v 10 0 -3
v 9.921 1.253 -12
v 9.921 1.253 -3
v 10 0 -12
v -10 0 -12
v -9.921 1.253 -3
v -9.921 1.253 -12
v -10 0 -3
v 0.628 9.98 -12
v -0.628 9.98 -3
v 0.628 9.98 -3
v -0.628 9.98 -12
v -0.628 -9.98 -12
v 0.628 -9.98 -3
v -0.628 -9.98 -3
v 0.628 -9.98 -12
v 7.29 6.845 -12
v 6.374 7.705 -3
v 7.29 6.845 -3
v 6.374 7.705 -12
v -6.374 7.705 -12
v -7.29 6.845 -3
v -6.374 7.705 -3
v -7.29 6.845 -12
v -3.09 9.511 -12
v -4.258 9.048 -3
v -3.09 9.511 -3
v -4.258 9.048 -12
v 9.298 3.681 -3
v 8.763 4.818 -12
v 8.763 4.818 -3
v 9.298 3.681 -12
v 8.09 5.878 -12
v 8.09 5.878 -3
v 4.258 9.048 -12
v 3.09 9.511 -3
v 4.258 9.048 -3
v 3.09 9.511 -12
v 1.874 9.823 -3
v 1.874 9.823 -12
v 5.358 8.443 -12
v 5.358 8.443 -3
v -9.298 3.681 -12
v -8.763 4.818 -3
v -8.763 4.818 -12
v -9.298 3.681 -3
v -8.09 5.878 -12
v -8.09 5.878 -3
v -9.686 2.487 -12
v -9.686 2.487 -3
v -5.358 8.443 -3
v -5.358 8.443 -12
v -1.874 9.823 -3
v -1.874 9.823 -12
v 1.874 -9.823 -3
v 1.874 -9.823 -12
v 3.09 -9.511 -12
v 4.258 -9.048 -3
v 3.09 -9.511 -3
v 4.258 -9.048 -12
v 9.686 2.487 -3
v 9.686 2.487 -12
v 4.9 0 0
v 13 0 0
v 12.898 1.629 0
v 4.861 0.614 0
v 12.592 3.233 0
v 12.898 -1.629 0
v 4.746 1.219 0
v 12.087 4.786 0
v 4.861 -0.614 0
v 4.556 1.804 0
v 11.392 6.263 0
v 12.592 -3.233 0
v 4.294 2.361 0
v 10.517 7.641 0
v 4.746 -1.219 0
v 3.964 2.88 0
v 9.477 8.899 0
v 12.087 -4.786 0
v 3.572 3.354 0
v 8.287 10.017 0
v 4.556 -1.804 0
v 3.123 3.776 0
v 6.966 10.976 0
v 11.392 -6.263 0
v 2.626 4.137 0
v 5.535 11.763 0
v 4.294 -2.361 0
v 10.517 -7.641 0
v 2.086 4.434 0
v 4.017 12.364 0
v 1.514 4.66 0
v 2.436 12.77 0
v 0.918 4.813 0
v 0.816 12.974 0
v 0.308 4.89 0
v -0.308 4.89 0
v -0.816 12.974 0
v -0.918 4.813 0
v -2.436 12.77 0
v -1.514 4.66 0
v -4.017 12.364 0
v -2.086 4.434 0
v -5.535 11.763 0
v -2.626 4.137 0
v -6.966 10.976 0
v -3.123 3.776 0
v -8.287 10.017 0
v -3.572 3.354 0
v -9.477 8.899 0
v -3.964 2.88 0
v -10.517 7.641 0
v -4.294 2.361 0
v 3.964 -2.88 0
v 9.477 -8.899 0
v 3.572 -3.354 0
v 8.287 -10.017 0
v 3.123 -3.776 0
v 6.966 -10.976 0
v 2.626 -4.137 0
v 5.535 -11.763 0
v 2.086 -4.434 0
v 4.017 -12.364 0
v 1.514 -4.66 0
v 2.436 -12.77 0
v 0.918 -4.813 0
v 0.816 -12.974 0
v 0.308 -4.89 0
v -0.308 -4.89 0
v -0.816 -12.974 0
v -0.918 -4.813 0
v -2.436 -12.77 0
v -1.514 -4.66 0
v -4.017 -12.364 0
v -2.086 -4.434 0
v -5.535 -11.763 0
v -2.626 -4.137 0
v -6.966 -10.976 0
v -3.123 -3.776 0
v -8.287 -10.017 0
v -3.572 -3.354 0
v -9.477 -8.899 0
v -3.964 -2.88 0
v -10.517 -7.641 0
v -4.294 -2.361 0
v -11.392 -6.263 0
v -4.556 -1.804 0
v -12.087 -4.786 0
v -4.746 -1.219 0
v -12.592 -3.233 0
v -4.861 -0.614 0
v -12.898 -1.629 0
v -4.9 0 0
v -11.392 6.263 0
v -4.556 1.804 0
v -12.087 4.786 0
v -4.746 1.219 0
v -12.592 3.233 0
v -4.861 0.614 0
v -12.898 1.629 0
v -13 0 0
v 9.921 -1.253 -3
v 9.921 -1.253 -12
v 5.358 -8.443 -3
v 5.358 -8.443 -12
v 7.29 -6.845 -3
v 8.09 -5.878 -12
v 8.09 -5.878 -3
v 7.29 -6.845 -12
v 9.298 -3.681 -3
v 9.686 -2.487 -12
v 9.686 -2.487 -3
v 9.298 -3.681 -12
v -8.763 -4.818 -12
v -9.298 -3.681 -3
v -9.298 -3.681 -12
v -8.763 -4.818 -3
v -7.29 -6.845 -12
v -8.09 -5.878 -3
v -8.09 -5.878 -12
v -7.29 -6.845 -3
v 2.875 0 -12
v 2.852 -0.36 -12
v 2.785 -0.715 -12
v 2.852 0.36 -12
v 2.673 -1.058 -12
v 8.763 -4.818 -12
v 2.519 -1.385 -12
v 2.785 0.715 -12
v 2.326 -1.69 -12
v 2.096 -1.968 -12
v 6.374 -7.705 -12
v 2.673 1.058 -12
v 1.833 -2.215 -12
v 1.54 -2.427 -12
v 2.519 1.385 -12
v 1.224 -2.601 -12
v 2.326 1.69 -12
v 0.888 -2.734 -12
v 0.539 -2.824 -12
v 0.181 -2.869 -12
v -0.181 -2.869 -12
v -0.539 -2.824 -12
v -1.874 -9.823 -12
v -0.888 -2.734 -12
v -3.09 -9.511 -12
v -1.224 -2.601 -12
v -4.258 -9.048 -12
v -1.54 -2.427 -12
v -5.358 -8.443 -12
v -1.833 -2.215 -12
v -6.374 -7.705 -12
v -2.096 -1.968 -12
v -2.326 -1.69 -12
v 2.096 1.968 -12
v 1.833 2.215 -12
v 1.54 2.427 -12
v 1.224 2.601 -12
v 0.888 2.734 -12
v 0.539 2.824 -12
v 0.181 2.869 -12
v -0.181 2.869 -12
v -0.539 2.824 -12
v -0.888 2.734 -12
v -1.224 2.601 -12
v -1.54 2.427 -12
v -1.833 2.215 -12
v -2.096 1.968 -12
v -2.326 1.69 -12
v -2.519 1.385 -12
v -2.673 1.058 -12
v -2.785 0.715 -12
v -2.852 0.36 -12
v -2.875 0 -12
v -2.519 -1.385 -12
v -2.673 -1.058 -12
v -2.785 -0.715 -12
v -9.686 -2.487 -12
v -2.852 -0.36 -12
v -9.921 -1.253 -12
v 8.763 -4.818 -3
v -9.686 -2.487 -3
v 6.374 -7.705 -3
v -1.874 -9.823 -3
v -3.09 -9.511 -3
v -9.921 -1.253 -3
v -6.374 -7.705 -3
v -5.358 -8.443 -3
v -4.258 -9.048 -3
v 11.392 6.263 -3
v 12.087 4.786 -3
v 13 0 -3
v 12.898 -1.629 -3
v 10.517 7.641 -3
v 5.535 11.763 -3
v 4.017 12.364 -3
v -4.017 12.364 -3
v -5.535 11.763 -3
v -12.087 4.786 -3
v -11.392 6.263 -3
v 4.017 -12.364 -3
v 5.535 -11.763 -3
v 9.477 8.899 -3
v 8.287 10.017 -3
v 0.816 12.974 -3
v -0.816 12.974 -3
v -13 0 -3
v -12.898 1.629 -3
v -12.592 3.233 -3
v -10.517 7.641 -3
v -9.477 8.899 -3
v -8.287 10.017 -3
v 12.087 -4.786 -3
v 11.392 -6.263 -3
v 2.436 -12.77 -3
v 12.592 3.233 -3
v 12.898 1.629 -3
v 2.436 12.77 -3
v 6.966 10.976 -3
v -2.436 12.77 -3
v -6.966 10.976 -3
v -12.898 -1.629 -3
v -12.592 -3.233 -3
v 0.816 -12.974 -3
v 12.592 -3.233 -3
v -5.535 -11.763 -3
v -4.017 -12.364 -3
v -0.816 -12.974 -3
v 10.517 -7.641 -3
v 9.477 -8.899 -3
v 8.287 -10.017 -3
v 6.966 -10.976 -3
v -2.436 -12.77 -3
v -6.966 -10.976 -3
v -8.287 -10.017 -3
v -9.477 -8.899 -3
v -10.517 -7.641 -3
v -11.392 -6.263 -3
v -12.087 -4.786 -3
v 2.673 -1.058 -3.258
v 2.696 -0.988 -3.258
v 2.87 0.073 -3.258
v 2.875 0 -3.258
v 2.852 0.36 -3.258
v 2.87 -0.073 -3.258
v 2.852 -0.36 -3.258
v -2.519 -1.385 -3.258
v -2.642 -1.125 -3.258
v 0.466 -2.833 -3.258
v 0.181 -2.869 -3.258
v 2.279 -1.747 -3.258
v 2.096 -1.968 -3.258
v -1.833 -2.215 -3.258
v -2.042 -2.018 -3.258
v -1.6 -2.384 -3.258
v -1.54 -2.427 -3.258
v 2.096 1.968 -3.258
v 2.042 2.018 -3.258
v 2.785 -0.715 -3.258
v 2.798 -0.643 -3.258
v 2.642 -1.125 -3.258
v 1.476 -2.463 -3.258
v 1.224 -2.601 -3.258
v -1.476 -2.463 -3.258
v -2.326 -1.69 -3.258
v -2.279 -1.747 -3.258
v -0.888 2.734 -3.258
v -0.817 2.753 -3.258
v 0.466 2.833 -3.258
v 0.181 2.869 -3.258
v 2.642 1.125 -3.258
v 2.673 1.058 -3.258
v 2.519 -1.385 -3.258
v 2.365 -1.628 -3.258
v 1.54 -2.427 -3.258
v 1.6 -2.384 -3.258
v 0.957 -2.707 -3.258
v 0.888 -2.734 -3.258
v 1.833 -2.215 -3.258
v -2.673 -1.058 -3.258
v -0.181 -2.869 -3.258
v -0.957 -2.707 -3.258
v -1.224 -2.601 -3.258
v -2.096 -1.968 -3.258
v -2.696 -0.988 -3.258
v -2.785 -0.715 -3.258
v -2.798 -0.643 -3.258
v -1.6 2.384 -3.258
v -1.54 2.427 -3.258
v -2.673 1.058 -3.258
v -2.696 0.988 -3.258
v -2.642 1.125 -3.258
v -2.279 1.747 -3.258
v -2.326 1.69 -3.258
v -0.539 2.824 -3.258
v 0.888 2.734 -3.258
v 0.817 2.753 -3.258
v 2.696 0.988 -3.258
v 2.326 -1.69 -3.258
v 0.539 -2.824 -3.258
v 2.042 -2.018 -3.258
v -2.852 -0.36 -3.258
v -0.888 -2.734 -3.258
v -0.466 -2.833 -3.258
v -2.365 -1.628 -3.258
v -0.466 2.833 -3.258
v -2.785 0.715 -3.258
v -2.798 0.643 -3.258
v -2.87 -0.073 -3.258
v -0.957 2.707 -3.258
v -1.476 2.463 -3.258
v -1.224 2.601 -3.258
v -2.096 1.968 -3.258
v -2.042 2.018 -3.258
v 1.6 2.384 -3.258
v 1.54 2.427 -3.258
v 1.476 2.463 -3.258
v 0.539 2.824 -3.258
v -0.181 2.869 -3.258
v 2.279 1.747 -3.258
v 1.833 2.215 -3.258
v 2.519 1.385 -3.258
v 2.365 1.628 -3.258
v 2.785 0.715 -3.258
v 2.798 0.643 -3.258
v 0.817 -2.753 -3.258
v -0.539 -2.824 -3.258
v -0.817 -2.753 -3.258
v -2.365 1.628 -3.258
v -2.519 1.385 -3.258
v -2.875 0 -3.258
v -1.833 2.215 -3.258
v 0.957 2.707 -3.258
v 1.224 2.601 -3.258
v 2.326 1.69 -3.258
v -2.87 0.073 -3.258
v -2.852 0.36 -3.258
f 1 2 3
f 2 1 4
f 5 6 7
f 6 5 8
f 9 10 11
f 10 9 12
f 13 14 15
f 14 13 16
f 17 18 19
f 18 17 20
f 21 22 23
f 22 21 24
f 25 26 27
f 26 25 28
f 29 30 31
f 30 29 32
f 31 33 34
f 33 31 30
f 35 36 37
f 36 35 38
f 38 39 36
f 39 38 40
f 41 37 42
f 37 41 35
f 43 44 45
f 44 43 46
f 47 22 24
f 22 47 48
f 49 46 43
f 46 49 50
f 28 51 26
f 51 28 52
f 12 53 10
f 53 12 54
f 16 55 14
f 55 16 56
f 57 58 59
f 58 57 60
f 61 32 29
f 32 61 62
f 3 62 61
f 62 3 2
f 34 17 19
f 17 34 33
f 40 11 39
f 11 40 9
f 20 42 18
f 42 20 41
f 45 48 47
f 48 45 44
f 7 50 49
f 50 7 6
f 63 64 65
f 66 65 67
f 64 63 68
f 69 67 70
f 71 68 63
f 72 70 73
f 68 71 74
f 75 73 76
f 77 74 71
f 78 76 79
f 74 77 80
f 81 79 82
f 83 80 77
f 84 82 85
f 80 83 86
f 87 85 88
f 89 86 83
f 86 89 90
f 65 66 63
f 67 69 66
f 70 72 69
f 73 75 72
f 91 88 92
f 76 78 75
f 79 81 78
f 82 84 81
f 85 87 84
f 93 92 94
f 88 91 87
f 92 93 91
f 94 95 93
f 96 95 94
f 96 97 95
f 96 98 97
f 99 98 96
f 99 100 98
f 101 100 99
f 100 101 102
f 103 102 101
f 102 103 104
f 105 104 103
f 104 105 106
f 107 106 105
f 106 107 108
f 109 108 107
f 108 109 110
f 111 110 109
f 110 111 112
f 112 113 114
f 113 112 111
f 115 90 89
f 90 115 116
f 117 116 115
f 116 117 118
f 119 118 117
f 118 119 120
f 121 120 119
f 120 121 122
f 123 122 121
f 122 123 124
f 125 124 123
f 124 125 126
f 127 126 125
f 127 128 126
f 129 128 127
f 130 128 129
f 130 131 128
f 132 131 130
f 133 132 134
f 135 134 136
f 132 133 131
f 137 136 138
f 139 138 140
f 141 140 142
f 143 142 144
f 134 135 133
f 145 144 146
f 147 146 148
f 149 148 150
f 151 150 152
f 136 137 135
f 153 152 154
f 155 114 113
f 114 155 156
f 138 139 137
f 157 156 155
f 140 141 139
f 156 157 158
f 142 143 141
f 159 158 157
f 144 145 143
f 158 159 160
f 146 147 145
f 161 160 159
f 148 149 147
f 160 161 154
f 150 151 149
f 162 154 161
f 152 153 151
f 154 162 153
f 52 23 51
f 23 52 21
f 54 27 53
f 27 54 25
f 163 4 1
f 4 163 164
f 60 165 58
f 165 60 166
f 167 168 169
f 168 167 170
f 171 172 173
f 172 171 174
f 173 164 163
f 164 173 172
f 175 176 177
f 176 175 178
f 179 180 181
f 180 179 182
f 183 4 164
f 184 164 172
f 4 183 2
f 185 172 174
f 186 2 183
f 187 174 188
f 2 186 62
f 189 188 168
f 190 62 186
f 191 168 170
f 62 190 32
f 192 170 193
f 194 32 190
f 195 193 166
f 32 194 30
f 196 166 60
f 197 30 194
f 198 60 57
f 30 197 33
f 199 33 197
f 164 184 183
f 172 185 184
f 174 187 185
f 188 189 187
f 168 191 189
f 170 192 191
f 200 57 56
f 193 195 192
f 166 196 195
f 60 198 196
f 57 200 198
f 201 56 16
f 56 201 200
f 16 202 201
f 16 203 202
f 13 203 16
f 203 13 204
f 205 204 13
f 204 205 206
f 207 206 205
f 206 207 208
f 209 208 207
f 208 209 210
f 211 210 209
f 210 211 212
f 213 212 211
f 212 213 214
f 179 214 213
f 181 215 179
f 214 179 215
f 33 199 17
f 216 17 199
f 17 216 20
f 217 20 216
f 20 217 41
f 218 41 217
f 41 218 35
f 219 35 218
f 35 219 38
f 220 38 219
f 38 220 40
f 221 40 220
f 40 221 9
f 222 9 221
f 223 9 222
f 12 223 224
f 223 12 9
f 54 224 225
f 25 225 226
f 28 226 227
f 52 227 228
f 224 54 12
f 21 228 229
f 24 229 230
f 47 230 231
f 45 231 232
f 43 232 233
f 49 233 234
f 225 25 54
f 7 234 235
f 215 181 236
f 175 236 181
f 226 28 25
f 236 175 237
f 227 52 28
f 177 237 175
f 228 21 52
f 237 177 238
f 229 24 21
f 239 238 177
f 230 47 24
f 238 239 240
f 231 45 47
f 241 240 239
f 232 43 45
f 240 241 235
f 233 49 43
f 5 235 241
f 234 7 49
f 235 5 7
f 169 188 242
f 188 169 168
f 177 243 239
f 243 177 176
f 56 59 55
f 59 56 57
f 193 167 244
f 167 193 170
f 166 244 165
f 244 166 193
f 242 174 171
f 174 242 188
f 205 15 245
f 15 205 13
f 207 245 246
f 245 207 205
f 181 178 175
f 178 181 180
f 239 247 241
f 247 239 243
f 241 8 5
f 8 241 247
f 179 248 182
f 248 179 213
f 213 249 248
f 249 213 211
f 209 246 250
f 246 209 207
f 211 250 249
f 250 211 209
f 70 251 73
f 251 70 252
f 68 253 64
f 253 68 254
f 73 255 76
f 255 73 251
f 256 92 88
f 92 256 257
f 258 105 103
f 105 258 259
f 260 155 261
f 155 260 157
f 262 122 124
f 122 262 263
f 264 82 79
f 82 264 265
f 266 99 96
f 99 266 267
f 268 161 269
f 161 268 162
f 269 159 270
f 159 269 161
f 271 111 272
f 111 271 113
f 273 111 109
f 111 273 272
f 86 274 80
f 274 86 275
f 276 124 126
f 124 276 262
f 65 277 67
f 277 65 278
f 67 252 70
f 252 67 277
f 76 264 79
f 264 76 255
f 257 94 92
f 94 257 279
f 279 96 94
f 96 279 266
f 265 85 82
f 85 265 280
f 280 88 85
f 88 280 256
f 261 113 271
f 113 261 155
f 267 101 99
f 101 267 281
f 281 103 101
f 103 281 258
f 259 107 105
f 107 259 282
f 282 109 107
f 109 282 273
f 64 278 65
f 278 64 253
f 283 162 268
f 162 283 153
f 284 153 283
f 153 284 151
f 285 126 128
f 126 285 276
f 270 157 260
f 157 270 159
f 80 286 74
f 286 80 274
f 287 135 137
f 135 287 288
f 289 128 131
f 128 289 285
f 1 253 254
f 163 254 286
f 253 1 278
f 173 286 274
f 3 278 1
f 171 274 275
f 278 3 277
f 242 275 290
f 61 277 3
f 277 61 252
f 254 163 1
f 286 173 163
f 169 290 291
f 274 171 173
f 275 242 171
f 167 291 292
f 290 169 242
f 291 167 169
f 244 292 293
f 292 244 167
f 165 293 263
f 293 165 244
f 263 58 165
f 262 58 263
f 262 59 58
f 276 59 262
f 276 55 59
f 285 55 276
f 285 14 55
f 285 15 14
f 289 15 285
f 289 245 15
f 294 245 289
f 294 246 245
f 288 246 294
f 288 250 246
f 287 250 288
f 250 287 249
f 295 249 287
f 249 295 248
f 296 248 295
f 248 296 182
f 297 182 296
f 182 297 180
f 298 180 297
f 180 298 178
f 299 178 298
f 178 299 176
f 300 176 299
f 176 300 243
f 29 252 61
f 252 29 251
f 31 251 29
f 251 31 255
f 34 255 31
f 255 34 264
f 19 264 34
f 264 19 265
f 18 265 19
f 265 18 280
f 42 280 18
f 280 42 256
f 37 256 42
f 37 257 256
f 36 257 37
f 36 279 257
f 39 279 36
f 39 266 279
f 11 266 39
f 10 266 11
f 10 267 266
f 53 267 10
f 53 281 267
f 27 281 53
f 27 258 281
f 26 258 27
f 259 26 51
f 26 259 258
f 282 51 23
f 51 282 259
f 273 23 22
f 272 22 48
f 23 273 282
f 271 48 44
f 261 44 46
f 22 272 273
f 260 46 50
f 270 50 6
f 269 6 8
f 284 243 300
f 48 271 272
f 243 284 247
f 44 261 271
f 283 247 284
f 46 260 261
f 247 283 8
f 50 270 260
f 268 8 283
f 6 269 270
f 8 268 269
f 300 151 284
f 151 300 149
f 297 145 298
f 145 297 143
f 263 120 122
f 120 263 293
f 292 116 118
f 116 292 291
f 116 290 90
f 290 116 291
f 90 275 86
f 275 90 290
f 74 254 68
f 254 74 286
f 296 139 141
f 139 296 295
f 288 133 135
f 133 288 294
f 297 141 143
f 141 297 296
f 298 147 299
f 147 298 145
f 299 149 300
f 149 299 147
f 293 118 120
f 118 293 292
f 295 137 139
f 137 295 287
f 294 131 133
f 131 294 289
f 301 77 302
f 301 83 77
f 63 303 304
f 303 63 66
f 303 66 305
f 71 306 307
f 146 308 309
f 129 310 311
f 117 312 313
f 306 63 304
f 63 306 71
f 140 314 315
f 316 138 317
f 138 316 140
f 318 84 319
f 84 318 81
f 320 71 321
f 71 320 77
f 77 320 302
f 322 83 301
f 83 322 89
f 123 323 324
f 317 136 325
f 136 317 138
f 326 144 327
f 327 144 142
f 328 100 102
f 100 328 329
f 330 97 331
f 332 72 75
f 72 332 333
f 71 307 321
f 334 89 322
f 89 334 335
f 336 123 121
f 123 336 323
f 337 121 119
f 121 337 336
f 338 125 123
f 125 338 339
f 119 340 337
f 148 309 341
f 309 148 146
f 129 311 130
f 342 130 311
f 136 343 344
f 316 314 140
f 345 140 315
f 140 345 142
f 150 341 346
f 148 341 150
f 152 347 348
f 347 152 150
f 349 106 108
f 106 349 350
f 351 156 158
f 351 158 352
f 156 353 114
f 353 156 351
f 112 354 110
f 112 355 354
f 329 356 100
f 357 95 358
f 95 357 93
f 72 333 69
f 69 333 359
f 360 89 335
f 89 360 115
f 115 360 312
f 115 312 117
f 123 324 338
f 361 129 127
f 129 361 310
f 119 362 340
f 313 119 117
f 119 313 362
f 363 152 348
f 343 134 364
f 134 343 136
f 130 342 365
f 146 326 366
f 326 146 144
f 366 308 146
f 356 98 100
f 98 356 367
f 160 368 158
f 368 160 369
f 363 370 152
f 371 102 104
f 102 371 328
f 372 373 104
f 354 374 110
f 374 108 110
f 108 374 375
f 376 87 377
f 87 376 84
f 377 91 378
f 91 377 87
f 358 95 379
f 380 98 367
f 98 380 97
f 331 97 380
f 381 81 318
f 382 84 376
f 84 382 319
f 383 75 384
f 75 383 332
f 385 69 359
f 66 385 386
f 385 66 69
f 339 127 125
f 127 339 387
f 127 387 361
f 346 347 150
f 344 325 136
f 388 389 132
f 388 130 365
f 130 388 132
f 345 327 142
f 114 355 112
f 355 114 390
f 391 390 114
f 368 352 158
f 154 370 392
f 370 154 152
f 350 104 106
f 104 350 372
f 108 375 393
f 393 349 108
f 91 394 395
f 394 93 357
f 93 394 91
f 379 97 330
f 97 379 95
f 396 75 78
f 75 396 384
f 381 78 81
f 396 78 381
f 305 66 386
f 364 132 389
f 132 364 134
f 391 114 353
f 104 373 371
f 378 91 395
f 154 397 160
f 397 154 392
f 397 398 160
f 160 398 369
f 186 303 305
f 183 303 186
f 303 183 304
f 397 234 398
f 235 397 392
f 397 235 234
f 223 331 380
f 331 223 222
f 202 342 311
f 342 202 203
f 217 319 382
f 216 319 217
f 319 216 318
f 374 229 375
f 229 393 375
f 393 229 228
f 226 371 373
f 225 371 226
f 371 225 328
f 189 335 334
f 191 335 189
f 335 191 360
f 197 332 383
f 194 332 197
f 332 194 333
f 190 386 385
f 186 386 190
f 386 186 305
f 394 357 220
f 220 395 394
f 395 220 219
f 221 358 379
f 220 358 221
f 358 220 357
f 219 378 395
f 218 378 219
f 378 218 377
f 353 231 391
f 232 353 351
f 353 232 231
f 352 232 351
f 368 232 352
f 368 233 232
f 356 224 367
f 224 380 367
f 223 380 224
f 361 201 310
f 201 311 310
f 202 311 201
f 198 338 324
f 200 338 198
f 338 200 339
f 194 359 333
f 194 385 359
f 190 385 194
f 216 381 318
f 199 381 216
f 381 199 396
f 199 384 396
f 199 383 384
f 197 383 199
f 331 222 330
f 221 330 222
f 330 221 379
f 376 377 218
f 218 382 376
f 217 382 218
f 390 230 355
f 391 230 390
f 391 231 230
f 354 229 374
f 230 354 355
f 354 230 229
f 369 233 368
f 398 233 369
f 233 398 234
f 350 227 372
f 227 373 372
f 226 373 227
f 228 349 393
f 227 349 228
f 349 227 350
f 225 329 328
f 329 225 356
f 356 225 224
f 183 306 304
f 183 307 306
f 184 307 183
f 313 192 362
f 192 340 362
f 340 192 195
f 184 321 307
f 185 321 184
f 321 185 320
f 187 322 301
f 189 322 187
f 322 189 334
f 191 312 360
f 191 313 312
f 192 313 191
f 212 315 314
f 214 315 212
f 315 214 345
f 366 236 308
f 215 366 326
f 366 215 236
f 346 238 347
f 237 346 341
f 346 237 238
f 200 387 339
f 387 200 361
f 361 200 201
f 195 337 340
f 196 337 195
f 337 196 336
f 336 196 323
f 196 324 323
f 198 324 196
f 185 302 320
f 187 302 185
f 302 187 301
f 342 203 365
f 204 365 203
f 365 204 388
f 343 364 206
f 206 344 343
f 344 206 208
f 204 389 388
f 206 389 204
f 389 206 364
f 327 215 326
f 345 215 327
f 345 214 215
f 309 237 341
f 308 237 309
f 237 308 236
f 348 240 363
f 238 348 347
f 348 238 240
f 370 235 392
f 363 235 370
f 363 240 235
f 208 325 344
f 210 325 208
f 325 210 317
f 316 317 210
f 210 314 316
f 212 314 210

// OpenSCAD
$fn = 50;


difference() {
	union() {
		translate(v = [0, 0, -12.0000000000]) {
			cylinder(h = 12, r = 10.0000000000);
		}
		translate(v = [0, 0, -3.0000000000]) {
			cylinder(h = 3, r = 13.0000000000);
		}
	}
	union() {
		translate(v = [0, 0, 0]) {
			rotate(a = [0, 0, 0]) {
				difference() {
					union() {
						translate(v = [0, 0, -3.7000000000]) {
							cylinder(h = 3.7000000000, r = 10.0000000000, r1 = 2.6000000000, r2 = 4.9000000000);
						}
						translate(v = [0, 0, -12.0000000000]) {
							cylinder(h = 12, r = 2.6000000000);
						}
						translate(v = [0, 0, -12.0000000000]) {
							cylinder(h = 12, r = 2.8750000000);
						}
						translate(v = [0, 0, -12.0000000000]) {
							cylinder(h = 12, r = 2.6000000000);
						}
					}
					union();
				}
			}
		}
	}
}
